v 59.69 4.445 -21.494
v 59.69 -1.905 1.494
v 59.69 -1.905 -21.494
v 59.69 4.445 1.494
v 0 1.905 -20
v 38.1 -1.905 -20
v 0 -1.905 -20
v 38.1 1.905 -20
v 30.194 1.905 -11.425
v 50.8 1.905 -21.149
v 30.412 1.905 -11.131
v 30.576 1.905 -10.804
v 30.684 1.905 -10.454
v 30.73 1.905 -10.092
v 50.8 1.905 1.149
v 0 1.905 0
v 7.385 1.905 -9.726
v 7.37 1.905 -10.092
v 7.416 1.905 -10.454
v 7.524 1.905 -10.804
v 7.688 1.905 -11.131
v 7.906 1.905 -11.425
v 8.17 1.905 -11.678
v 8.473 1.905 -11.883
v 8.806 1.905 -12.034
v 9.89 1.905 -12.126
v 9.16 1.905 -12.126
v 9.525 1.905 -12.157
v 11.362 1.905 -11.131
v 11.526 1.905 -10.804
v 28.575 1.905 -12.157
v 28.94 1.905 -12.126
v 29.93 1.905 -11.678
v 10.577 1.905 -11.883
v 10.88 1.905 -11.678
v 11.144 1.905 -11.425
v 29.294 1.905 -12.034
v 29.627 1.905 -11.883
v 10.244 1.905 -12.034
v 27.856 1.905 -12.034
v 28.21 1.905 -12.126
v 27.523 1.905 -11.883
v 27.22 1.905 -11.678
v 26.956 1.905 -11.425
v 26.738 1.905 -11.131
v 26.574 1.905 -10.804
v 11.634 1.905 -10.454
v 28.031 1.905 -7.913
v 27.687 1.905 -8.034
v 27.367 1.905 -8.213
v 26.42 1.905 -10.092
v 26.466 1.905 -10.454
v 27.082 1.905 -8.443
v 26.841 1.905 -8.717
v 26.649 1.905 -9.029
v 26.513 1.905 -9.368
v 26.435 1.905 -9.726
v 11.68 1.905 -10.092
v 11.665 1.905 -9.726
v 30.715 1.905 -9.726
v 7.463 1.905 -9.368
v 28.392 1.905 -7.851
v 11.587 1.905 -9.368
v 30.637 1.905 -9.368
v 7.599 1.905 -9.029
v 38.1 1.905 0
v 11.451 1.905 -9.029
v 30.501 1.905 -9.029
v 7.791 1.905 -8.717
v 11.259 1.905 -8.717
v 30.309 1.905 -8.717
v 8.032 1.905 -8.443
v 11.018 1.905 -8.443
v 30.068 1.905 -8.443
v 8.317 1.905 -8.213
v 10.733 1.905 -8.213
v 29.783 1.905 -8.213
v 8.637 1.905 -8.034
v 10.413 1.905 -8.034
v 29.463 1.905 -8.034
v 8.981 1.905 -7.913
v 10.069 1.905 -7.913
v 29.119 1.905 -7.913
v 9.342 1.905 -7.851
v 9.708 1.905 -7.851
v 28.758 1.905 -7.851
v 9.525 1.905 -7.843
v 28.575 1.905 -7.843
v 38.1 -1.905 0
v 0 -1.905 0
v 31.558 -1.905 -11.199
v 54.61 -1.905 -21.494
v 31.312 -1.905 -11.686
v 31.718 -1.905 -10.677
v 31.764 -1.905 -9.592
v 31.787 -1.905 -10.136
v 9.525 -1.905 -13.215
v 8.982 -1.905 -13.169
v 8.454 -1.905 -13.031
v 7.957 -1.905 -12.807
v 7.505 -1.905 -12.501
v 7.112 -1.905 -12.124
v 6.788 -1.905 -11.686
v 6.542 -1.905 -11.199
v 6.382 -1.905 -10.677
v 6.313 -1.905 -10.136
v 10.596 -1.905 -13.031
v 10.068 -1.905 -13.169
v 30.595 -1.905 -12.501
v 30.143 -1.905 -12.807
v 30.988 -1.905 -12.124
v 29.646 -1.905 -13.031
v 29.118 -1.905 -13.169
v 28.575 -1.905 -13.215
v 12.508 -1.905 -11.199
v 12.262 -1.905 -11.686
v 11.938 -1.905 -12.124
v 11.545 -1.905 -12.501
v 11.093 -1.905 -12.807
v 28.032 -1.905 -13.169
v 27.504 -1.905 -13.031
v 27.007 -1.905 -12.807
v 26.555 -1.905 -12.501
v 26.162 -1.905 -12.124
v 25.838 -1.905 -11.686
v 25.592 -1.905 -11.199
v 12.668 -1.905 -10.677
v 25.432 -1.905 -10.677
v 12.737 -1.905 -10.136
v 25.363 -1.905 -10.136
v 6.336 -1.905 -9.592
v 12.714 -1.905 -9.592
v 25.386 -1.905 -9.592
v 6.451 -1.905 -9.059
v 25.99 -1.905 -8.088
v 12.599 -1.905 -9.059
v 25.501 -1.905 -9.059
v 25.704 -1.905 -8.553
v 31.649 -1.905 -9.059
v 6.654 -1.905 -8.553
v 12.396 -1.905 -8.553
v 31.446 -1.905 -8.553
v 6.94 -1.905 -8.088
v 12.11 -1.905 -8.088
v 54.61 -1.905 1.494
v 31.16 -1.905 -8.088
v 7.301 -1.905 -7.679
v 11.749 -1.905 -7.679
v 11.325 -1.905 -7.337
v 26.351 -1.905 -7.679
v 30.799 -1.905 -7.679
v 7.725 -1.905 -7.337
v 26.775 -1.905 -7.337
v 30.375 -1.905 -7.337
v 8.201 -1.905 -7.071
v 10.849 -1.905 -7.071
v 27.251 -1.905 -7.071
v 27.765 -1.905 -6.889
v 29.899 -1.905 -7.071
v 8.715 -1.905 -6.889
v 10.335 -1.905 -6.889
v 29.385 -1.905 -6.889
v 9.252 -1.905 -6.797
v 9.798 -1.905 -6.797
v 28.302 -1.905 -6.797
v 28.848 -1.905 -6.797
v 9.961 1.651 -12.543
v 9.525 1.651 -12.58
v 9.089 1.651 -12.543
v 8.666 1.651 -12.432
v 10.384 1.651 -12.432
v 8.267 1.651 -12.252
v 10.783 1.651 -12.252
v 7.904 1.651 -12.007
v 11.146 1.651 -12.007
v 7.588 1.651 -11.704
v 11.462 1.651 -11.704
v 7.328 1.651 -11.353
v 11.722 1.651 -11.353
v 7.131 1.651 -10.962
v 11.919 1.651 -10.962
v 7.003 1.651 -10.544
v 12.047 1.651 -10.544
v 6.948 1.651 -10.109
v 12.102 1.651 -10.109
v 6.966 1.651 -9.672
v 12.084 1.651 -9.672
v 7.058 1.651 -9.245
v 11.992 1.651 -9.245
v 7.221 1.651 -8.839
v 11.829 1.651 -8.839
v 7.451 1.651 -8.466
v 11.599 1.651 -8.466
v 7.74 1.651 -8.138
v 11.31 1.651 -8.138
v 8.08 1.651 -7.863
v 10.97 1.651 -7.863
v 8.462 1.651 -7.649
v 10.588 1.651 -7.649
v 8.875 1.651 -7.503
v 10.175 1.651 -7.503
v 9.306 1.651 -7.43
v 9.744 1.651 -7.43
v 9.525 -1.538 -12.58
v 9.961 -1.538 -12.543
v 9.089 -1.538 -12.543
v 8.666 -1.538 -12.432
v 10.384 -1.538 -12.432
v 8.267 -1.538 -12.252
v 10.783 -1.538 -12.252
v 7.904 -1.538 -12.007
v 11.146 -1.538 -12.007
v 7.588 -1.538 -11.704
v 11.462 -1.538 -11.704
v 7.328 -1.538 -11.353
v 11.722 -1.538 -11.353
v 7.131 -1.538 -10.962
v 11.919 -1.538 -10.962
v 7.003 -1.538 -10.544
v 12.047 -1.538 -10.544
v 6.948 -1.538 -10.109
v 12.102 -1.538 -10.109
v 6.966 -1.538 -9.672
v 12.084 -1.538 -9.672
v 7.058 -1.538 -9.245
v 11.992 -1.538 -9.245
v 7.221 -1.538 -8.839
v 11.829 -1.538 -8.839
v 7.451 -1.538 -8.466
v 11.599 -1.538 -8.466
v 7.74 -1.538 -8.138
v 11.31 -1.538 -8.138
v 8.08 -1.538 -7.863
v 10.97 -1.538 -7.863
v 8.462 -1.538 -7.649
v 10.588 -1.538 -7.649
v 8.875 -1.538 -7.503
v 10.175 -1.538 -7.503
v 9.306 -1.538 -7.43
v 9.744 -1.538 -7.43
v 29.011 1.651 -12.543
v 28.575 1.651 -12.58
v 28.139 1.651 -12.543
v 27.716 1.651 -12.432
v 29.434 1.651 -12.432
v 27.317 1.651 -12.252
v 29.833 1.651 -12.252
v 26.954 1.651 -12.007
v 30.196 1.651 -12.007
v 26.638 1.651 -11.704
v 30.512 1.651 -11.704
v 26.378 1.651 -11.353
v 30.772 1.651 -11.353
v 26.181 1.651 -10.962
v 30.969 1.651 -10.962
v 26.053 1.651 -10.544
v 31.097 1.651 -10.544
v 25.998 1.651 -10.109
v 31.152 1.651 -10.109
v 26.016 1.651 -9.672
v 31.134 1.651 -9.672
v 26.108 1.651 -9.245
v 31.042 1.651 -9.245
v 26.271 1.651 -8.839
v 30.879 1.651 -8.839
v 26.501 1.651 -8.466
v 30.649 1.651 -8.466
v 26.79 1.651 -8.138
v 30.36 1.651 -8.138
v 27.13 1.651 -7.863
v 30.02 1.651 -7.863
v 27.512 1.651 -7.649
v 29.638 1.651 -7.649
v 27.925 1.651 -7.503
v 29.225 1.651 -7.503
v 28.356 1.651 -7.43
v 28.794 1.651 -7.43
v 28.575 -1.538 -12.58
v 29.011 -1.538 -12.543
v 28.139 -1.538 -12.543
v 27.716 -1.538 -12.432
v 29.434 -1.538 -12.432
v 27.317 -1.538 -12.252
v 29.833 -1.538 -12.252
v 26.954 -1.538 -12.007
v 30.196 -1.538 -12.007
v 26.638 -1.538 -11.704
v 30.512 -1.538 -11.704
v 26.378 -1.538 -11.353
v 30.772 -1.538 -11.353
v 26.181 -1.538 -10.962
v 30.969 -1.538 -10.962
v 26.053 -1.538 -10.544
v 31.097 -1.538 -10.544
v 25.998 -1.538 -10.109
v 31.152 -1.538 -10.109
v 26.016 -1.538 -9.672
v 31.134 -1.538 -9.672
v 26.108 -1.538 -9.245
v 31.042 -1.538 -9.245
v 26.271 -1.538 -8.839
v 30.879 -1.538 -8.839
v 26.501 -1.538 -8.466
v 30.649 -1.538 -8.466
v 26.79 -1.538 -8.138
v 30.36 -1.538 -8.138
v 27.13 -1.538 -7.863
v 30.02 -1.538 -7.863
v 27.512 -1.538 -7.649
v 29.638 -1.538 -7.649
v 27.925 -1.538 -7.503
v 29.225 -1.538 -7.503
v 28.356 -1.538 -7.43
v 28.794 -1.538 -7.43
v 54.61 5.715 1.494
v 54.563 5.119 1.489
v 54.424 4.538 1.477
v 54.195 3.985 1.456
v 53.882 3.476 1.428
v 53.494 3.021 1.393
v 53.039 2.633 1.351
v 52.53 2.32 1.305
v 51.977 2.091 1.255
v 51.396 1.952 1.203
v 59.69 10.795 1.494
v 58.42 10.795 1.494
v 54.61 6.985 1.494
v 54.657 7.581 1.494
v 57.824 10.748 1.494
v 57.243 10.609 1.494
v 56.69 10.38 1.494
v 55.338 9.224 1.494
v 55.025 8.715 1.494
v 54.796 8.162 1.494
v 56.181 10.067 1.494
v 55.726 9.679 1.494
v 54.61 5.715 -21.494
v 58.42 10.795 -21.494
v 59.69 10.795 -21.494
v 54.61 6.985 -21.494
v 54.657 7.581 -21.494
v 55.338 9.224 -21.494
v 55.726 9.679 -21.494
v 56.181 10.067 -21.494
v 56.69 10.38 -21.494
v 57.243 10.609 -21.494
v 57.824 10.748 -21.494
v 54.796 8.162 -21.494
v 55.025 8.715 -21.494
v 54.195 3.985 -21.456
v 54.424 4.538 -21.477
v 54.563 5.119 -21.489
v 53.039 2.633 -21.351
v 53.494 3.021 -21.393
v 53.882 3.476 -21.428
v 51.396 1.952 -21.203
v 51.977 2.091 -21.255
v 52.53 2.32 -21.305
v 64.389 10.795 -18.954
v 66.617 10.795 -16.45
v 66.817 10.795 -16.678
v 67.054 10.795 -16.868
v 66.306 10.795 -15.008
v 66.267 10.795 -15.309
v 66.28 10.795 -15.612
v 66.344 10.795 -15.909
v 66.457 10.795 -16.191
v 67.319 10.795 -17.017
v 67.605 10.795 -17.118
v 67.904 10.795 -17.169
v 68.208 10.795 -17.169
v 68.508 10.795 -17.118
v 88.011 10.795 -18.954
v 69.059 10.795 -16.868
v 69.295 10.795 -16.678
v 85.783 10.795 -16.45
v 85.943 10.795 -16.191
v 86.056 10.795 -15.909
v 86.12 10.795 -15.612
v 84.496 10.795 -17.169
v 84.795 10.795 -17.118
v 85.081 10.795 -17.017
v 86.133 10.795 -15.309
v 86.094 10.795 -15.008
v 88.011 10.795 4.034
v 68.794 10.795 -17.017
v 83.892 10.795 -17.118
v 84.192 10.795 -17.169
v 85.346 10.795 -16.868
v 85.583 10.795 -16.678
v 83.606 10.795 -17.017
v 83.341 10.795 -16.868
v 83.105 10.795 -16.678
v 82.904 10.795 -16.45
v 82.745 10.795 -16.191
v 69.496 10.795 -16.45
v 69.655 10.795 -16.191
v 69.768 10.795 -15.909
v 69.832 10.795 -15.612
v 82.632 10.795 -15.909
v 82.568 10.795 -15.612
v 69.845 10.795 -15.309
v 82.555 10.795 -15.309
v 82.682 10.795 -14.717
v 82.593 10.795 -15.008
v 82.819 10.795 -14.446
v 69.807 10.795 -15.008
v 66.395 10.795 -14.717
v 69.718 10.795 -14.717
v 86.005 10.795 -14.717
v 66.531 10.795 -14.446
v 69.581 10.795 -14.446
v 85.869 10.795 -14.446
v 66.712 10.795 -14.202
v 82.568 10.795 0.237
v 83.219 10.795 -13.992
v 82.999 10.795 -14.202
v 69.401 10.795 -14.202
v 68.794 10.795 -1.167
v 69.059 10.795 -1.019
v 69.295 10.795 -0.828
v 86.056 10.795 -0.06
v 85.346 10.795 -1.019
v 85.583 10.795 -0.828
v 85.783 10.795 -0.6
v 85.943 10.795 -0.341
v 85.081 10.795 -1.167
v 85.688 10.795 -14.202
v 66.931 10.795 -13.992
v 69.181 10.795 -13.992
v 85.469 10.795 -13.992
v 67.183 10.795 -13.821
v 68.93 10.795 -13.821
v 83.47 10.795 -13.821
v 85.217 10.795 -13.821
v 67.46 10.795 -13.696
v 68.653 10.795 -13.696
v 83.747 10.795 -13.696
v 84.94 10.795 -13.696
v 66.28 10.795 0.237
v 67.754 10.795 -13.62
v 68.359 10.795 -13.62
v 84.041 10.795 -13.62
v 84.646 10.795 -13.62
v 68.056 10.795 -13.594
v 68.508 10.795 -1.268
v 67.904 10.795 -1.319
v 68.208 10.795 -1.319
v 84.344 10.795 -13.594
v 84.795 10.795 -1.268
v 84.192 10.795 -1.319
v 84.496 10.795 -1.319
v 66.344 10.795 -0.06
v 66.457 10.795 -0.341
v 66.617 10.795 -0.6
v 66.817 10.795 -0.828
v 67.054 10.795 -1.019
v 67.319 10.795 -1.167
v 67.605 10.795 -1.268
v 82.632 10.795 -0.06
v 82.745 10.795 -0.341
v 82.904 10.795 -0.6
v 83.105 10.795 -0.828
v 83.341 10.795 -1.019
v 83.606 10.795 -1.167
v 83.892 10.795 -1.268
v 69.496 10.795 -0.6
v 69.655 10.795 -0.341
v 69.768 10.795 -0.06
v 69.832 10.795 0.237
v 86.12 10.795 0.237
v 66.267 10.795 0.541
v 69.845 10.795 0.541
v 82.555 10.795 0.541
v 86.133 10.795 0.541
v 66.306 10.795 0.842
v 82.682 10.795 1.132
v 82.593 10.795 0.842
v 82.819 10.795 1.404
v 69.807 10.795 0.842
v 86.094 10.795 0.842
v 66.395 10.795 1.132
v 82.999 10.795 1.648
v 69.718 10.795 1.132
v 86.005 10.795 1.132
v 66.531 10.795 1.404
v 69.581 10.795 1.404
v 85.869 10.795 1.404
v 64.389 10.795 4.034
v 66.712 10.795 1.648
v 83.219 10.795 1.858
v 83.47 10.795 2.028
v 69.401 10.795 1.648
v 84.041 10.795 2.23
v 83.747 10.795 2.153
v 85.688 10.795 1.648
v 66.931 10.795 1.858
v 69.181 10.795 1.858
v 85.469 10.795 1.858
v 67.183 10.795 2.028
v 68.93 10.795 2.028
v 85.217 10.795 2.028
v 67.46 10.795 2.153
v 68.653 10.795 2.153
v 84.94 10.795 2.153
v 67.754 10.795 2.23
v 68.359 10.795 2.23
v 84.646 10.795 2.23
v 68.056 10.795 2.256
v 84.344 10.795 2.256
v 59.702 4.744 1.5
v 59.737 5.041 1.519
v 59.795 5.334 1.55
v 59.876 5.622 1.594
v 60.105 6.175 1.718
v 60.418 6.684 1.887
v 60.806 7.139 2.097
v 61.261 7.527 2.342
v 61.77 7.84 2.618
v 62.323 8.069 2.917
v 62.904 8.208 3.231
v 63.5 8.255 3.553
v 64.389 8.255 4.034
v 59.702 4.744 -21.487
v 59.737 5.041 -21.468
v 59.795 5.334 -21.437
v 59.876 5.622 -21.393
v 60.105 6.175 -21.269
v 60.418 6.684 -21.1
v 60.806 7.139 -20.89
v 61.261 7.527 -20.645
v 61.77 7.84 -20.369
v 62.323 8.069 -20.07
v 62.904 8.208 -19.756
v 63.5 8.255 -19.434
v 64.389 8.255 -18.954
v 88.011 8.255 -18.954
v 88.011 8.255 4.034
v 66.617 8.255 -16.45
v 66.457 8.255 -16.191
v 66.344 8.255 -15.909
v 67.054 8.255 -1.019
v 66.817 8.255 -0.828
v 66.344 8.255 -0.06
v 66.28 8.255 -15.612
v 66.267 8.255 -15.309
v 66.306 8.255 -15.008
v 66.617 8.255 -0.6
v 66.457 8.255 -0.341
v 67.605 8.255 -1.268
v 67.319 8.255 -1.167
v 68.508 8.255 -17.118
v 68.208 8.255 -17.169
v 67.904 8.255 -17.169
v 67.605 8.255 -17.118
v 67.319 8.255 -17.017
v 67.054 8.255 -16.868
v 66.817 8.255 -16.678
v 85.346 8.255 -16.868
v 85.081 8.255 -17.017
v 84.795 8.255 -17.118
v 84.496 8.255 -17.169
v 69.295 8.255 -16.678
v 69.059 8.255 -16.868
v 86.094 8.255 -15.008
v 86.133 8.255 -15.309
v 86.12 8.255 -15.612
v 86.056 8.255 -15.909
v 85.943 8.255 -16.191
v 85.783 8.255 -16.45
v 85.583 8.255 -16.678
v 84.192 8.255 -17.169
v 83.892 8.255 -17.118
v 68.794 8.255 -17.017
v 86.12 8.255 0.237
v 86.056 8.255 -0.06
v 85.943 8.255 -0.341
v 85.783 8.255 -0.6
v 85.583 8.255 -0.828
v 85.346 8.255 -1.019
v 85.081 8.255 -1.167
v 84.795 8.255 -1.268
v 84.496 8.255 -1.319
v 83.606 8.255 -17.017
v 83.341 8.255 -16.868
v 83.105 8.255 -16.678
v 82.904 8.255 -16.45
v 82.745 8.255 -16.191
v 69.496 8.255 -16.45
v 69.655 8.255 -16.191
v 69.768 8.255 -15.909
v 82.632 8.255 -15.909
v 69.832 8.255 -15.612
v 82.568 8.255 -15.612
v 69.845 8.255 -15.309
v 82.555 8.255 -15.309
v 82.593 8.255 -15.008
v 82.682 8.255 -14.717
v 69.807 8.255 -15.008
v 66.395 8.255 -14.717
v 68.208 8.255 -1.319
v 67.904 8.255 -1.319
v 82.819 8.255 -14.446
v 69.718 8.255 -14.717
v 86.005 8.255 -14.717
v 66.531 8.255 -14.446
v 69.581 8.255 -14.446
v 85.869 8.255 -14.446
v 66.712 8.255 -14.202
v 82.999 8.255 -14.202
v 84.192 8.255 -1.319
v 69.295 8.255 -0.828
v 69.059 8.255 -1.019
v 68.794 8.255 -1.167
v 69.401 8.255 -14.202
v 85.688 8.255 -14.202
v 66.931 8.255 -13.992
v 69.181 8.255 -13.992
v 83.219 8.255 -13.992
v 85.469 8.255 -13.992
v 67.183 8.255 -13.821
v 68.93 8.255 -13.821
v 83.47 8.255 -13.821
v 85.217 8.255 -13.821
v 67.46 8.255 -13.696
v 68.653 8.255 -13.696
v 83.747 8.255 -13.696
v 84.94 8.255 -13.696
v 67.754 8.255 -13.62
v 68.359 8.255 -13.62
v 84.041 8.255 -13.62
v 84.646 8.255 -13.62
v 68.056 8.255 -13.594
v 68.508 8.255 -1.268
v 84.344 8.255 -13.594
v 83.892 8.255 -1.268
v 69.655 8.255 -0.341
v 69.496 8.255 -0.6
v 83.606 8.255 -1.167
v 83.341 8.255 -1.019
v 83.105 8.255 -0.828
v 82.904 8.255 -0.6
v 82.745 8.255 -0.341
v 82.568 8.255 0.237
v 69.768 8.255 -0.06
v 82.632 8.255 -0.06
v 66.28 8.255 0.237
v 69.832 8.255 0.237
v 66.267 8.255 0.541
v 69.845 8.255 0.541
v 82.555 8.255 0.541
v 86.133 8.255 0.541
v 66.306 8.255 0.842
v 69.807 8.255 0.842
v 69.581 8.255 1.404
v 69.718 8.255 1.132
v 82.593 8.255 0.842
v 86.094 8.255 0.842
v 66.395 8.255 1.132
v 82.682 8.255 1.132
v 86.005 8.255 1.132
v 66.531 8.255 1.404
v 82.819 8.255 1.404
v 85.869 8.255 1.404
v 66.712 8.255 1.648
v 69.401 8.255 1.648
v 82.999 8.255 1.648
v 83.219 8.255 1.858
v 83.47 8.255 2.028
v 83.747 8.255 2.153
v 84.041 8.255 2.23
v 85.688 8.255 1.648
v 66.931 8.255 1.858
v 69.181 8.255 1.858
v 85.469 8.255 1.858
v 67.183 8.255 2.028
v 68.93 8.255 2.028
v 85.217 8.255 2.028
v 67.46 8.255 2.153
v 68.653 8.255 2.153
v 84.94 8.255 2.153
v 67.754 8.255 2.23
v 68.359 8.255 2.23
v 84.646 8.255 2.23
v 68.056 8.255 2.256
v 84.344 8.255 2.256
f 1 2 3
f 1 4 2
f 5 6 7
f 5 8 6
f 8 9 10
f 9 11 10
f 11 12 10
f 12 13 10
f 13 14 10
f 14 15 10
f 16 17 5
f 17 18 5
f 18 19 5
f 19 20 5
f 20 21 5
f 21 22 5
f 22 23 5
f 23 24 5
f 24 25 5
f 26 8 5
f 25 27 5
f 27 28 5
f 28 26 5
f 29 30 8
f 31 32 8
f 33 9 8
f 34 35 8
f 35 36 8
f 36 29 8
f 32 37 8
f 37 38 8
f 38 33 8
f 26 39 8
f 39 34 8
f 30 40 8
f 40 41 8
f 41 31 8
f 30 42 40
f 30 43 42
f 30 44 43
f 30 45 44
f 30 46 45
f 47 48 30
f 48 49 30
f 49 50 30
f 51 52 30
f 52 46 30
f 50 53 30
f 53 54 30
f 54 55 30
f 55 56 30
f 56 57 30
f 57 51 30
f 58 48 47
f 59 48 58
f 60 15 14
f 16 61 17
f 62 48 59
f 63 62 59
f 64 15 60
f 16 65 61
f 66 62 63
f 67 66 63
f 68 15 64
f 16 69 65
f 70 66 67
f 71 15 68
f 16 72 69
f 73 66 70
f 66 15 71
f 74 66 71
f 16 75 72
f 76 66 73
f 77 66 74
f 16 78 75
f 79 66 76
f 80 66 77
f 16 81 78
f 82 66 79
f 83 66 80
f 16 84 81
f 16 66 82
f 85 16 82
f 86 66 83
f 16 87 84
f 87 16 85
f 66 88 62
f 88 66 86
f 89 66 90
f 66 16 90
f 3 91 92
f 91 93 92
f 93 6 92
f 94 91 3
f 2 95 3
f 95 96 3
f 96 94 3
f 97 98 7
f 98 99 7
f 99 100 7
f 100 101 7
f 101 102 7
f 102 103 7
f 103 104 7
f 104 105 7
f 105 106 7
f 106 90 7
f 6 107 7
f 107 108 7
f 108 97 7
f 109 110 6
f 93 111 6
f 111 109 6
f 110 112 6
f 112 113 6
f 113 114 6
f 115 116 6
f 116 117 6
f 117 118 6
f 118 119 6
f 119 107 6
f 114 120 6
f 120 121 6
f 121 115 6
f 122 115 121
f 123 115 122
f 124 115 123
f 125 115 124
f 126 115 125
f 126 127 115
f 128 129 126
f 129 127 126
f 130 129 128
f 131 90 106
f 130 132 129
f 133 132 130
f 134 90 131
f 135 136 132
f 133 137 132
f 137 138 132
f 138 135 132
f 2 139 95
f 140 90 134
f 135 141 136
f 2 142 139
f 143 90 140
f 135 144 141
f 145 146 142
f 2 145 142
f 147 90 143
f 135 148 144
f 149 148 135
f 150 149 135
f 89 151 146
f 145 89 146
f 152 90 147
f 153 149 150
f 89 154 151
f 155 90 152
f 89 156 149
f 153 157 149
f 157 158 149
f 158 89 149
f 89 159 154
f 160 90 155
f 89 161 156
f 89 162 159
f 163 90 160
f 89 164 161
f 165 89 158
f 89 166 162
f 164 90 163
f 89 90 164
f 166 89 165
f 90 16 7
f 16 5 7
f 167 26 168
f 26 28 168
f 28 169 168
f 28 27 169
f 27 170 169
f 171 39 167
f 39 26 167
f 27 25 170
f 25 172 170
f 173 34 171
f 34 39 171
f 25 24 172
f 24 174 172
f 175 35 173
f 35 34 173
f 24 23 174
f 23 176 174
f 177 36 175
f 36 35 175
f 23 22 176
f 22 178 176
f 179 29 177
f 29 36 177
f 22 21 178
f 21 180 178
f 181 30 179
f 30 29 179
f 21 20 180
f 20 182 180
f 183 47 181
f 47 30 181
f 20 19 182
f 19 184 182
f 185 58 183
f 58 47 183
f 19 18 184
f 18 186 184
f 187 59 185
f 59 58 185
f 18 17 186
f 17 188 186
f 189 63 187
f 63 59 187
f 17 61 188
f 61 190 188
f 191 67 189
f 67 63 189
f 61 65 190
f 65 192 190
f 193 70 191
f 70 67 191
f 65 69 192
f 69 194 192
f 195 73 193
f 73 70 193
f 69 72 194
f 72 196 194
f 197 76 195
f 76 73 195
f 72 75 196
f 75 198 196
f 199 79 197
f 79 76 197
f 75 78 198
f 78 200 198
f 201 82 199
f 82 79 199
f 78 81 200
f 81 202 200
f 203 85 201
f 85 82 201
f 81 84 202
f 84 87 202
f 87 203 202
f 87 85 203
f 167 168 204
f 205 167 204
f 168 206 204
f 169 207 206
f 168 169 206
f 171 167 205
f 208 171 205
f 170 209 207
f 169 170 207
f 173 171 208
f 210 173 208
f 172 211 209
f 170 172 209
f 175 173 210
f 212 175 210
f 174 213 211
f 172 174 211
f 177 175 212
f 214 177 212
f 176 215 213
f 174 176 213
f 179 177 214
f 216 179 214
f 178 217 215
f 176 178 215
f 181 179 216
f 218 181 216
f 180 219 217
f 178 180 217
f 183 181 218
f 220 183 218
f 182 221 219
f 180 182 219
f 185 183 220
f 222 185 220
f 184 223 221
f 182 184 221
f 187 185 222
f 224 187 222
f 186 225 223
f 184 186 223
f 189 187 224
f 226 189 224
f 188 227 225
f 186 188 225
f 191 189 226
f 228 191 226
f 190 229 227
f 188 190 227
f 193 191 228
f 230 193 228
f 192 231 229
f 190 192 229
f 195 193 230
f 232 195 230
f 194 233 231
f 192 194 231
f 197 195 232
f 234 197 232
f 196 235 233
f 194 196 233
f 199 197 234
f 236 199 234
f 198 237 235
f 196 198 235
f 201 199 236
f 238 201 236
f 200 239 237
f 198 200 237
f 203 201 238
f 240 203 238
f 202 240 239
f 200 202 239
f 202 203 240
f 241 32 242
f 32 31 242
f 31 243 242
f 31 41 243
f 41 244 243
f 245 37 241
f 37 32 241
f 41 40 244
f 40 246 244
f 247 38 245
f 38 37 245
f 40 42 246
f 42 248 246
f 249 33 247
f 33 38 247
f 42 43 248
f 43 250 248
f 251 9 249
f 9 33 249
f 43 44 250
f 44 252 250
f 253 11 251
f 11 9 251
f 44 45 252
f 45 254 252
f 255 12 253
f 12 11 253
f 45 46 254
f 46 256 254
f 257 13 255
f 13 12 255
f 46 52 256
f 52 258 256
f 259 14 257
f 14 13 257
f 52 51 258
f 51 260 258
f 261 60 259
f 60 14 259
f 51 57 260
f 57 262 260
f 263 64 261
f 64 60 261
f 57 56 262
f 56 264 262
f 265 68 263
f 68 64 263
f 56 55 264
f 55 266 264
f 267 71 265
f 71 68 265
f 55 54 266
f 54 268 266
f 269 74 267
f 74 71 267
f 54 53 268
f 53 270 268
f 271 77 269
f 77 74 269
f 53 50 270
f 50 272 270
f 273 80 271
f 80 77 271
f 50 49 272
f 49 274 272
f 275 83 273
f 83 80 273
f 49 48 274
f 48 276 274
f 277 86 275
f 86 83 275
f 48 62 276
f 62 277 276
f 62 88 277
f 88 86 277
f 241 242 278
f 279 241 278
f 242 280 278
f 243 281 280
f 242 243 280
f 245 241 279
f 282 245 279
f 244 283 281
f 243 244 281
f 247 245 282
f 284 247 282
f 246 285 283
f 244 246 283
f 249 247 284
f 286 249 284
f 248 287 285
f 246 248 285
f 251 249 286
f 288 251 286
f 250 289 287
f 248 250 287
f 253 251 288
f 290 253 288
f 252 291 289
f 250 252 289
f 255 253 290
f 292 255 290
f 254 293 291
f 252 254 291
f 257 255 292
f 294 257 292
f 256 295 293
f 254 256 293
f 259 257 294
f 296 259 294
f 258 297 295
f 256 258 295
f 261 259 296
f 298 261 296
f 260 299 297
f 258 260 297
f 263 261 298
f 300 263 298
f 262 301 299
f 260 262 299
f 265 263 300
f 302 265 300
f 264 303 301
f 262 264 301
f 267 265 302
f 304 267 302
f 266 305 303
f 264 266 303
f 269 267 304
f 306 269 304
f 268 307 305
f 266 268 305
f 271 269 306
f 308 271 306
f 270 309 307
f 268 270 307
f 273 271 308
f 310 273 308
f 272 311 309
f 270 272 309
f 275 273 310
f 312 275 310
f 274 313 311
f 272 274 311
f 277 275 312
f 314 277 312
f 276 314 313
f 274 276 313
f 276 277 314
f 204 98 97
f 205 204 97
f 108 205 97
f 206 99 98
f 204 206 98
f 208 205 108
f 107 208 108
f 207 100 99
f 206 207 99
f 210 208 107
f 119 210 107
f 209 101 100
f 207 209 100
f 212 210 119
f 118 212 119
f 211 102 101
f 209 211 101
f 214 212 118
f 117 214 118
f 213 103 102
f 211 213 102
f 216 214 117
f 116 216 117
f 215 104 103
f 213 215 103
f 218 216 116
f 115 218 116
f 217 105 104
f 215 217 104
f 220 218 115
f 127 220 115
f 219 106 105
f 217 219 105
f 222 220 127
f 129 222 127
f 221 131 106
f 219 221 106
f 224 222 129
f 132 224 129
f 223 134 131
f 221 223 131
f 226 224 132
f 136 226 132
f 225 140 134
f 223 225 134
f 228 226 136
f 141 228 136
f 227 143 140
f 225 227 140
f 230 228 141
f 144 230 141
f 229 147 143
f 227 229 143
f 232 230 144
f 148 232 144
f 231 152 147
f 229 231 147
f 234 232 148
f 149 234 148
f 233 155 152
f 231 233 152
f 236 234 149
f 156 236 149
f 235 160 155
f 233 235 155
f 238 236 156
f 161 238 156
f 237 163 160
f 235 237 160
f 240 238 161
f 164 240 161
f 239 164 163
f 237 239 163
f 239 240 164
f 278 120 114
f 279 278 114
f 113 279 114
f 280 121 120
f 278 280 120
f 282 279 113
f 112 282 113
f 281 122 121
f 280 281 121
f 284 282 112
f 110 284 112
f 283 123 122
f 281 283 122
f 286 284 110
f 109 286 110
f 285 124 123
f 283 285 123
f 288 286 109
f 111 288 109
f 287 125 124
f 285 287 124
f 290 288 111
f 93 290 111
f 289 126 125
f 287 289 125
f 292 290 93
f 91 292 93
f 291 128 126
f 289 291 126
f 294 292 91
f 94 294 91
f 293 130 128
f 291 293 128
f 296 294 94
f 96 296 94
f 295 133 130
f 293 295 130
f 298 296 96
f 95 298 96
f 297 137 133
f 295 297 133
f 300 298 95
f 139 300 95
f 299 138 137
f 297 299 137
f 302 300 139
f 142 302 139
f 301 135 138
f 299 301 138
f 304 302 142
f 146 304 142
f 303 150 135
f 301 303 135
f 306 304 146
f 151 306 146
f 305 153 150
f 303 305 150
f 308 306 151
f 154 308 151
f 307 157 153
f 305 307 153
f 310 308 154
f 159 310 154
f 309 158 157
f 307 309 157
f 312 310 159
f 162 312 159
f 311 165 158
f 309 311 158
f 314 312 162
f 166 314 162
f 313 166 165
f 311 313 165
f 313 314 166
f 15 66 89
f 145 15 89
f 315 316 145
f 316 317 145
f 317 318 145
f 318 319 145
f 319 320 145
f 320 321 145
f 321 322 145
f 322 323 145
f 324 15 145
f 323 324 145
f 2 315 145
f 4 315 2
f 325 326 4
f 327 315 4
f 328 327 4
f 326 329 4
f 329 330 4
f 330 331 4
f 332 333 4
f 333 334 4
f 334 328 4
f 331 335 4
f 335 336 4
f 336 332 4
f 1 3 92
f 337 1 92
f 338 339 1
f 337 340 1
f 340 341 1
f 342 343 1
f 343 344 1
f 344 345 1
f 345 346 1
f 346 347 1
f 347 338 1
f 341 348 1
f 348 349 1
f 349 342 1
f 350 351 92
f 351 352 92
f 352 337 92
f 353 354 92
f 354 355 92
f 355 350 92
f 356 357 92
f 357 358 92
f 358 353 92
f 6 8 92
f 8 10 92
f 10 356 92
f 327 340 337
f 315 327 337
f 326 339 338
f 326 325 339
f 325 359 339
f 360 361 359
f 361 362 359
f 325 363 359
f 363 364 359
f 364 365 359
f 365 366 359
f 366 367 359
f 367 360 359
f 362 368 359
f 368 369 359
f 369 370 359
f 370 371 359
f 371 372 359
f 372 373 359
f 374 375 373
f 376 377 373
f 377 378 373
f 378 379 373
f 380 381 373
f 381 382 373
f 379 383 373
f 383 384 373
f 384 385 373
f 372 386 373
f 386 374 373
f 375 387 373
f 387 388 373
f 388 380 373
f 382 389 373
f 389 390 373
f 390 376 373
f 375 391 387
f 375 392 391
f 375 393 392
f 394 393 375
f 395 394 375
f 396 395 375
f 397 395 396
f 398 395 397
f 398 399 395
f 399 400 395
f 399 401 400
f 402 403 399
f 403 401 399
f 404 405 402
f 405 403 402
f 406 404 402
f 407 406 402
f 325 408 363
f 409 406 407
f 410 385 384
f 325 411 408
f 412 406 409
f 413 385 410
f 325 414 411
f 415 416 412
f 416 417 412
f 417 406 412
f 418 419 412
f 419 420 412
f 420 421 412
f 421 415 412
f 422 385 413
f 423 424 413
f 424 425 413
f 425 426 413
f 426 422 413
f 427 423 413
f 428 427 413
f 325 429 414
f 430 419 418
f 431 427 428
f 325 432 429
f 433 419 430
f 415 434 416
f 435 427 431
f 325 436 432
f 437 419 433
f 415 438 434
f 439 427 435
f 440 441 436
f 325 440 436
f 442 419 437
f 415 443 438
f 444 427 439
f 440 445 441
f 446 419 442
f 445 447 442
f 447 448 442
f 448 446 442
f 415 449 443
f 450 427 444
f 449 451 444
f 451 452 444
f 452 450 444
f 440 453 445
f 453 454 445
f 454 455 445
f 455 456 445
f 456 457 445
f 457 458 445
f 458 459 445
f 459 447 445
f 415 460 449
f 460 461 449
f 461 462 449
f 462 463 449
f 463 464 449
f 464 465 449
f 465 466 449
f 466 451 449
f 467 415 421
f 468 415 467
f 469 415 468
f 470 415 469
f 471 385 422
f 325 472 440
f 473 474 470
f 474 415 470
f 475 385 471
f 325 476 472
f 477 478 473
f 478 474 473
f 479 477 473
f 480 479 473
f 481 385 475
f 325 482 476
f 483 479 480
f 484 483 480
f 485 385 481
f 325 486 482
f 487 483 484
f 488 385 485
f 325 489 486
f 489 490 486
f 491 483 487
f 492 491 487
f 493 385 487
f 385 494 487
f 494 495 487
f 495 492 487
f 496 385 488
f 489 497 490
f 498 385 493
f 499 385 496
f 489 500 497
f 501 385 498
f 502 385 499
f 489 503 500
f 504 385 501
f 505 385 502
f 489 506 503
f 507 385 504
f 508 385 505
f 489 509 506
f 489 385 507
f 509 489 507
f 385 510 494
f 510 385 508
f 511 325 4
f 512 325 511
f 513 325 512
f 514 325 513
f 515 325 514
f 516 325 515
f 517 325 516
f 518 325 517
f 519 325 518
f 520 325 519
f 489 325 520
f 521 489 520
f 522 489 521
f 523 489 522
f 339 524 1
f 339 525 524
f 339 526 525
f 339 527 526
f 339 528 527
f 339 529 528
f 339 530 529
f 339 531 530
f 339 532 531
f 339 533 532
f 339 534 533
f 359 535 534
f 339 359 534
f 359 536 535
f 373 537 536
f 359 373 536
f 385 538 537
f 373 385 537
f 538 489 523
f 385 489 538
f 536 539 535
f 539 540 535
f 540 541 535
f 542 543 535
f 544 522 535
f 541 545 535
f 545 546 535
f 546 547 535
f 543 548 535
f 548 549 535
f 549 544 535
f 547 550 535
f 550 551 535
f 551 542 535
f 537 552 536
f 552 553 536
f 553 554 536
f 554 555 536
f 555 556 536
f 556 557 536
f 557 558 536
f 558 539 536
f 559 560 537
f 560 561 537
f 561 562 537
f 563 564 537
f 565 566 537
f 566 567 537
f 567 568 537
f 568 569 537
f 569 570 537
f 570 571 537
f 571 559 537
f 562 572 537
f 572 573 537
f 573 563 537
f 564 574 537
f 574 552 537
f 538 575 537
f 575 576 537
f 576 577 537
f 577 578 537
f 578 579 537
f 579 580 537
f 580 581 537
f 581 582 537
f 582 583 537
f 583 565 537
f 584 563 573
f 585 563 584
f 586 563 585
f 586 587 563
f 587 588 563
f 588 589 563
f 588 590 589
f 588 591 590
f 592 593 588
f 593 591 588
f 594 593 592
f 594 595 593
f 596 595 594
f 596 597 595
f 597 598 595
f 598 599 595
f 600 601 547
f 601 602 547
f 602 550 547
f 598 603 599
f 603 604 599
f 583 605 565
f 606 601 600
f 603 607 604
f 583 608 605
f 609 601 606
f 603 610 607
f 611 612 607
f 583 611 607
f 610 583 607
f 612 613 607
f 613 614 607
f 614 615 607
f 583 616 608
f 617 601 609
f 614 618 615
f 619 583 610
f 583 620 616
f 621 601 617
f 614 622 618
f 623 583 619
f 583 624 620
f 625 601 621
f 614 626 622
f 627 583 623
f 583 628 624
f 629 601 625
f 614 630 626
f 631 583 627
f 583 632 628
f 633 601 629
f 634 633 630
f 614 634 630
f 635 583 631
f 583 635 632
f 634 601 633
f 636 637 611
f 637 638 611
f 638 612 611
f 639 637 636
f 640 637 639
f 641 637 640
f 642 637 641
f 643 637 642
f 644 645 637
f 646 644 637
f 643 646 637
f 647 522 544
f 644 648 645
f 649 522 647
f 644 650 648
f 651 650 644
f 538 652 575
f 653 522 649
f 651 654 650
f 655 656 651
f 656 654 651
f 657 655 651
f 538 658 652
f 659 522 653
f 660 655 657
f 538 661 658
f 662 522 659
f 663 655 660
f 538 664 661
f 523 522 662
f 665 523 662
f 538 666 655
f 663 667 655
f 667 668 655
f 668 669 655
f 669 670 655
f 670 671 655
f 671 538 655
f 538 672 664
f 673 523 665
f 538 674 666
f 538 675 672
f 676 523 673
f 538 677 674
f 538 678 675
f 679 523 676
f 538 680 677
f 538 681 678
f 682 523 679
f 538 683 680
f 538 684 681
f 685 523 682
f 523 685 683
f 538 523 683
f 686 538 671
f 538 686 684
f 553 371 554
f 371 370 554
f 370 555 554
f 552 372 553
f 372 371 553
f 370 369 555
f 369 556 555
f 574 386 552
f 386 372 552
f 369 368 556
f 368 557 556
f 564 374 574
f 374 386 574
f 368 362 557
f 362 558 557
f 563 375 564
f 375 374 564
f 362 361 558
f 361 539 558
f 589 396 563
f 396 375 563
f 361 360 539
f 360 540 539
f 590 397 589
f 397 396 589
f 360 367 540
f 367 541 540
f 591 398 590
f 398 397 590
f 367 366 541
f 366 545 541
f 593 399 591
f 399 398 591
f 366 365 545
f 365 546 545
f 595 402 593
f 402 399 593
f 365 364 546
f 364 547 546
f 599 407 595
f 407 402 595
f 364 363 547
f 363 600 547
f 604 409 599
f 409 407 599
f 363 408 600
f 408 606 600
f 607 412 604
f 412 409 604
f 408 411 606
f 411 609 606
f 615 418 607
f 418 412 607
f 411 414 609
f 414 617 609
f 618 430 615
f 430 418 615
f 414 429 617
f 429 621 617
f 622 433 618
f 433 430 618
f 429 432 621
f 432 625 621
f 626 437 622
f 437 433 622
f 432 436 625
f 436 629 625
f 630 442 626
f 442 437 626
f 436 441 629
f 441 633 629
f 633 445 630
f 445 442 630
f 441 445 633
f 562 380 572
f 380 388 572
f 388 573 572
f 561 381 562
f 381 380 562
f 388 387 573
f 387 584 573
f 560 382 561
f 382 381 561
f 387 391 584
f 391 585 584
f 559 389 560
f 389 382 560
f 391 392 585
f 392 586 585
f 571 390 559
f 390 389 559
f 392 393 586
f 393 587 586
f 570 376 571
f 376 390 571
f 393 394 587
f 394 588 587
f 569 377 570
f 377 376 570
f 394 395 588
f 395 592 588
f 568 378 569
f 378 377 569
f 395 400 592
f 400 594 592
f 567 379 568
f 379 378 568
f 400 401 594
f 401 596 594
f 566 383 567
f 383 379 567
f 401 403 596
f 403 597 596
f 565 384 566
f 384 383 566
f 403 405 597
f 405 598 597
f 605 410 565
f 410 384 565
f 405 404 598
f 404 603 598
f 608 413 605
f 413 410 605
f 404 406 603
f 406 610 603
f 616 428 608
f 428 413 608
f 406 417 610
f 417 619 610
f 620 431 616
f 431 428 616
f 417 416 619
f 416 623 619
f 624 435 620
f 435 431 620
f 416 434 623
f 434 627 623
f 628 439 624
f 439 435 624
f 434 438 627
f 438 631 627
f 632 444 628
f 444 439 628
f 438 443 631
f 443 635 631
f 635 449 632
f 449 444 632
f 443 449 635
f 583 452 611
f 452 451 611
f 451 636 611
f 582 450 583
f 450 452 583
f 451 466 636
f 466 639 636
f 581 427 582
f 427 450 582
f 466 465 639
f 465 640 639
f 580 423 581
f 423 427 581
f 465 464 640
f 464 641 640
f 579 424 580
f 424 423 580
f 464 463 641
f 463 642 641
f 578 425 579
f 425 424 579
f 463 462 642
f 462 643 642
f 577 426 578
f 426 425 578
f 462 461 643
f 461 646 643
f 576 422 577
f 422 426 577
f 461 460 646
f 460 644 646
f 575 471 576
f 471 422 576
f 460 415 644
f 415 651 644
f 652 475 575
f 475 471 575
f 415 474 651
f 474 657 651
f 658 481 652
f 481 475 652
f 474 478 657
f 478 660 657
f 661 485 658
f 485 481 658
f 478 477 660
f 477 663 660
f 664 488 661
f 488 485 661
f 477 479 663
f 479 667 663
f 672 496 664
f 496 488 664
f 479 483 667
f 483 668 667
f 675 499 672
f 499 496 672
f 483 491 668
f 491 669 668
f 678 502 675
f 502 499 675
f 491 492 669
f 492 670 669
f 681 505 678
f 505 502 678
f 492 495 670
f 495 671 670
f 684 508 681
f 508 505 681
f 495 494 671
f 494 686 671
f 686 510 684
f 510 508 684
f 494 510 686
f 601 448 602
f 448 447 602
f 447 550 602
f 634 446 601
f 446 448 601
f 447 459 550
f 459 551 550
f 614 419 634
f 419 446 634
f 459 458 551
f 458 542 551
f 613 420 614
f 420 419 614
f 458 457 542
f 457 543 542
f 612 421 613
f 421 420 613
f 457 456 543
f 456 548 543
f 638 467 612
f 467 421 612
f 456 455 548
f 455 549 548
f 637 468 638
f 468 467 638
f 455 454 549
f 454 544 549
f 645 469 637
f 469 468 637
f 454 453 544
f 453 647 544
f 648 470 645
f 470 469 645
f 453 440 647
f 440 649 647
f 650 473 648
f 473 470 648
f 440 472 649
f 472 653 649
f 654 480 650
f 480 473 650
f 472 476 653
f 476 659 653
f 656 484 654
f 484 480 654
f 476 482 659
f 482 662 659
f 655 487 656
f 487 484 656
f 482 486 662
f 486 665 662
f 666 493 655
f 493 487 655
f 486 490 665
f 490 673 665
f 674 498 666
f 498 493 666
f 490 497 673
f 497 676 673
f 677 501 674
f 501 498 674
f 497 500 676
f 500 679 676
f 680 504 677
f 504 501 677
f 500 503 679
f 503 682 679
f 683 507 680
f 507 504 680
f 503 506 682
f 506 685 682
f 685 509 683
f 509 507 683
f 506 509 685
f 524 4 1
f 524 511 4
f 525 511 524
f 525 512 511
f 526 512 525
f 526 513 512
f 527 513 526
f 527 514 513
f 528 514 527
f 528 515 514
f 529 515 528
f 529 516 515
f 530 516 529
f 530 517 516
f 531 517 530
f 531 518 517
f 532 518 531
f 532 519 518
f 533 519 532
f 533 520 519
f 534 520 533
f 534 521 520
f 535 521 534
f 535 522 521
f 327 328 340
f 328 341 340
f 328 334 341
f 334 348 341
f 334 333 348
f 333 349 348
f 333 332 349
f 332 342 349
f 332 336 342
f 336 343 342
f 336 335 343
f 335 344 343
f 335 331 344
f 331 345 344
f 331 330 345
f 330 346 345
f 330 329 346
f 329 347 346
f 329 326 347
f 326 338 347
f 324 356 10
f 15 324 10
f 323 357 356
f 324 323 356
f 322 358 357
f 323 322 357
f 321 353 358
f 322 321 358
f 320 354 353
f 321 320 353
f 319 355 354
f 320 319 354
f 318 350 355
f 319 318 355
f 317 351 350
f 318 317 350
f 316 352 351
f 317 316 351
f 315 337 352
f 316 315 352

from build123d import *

# Parameters (mm, degrees)
BODY_DEPTH                           = 38.1
F_13_64_0_20313_DIAMETER_HOLE1_D     = 5.159502
F_13_64_0_20313_DIAMETER_HOLE1_DEPTH = 3.556
F_13_64_0_20313_DIAMETER_HOLE1_TIP   = 1.550070783
CHAMFER1_SIZE                        = 0.635
CHAMFER1_SIZE2                       = 0.366617421
REACHER_DEPTH                        = 3.81
SKETCH13_W                           = 5.08
SKETCH13_H                           = 22.987
BOSS_EXTRUDE4_DEPTH                  = 8.89
SKETCH11_R                           = 1.7907
BOSS_EXTRUDE3_DEPTH                  = 2.54
FILLET1_R                            = 3.81


with BuildPart() as part:
    # Profile → Body (new body)
    with BuildSketch(Plane(origin=(0, 0, 0), x_dir=(0, 0, -1), z_dir=(1, 0, 0))):
        Polygon((20, -1.905), (20, 1.905), (0, 1.905), (0, -1.905), (4.92, -1.905), (10, -1.905), (15.08, -1.905), align=None)
    extrude(amount=BODY_DEPTH)

    # 13/64 (0.20313) Diameter Hole1
    with Locations(Plane(origin=(0, -1.905, 0), x_dir=(-1, 0, 0), z_dir=(0, -1, 0))):
        with Locations((-28.575, 10), (-9.525, 10)):
            Hole(F_13_64_0_20313_DIAMETER_HOLE1_D / 2, depth=F_13_64_0_20313_DIAMETER_HOLE1_DEPTH)
            with Locations((0, 0, -(F_13_64_0_20313_DIAMETER_HOLE1_DEPTH + F_13_64_0_20313_DIAMETER_HOLE1_TIP / 2))):  # 118° drill point
                Cone(0, F_13_64_0_20313_DIAMETER_HOLE1_D / 2, F_13_64_0_20313_DIAMETER_HOLE1_TIP, mode=Mode.SUBTRACT)

    # Chamfer1
    chamfer1_edges = [part.edges().sort_by_distance(p)[0] for p in [
        (6.945249, -1.905, -10),
        (25.995249, -1.905, -10),
    ]]
    chamfer1_side = [part.faces().sort_by_distance(p)[0] for p in [
        (19.05, -1.905, -10),
    ]]
    chamfer(chamfer1_edges, length=CHAMFER1_SIZE, length2=CHAMFER1_SIZE2, reference=chamfer1_side[0])

    # Sketch9 → Reacher (add)
    with BuildSketch(Plane(origin=(0, -1.905, 0), x_dir=(1, 0, 0), z_dir=(0, 1, 0))):
        Polygon((54.61, 21.4935), (38.1, 20), (38.1, 0), (54.61, -1.4935), (59.69, -1.4935), (59.69, 21.4935), align=None)
    extrude(amount=REACHER_DEPTH)

    # Sketch13 → Boss-Extrude4 (add)
    with BuildSketch(Plane(origin=(0, 1.905, 0), x_dir=(1, 0, 0), z_dir=(0, 1, 0))):
        with Locations((57.15, 10)):
            Rectangle(SKETCH13_W, SKETCH13_H)
    extrude(amount=BOSS_EXTRUDE4_DEPTH)

    # Sketch11 → Boss-Extrude3 (add)
    with BuildSketch(Plane(origin=(0, 10.795, 0), x_dir=(1, 0, 0), z_dir=(0, 1, 0))):
        Polygon((64.389, -4.0335), (88.011, -4.0335), (88.011, 18.9535), (64.389, 18.9535), (59.69, 21.4935), (59.69, -1.4935), align=None)
        with Locations((68.056282873, 15.3848)):
            Circle(SKETCH11_R, mode=Mode.SUBTRACT)
        with Locations((84.343717127, 15.3848)):
            Circle(SKETCH11_R, mode=Mode.SUBTRACT)
        with Locations((84.343717127, -0.4648)):
            Circle(SKETCH11_R, mode=Mode.SUBTRACT)
        with Locations((68.056282873, -0.4648)):
            Circle(SKETCH11_R, mode=Mode.SUBTRACT)
    extrude(amount=-BOSS_EXTRUDE3_DEPTH)

    # Fillet1
    fillet1_edges = [part.edges().sort_by_distance(p)[0] for p in [
        (54.61, 1.905, -10),
        (54.61, 10.795, -10),
        (59.69, 8.255, -10),
    ]]
    fillet(fillet1_edges, radius=FILLET1_R)


solid = part.part
